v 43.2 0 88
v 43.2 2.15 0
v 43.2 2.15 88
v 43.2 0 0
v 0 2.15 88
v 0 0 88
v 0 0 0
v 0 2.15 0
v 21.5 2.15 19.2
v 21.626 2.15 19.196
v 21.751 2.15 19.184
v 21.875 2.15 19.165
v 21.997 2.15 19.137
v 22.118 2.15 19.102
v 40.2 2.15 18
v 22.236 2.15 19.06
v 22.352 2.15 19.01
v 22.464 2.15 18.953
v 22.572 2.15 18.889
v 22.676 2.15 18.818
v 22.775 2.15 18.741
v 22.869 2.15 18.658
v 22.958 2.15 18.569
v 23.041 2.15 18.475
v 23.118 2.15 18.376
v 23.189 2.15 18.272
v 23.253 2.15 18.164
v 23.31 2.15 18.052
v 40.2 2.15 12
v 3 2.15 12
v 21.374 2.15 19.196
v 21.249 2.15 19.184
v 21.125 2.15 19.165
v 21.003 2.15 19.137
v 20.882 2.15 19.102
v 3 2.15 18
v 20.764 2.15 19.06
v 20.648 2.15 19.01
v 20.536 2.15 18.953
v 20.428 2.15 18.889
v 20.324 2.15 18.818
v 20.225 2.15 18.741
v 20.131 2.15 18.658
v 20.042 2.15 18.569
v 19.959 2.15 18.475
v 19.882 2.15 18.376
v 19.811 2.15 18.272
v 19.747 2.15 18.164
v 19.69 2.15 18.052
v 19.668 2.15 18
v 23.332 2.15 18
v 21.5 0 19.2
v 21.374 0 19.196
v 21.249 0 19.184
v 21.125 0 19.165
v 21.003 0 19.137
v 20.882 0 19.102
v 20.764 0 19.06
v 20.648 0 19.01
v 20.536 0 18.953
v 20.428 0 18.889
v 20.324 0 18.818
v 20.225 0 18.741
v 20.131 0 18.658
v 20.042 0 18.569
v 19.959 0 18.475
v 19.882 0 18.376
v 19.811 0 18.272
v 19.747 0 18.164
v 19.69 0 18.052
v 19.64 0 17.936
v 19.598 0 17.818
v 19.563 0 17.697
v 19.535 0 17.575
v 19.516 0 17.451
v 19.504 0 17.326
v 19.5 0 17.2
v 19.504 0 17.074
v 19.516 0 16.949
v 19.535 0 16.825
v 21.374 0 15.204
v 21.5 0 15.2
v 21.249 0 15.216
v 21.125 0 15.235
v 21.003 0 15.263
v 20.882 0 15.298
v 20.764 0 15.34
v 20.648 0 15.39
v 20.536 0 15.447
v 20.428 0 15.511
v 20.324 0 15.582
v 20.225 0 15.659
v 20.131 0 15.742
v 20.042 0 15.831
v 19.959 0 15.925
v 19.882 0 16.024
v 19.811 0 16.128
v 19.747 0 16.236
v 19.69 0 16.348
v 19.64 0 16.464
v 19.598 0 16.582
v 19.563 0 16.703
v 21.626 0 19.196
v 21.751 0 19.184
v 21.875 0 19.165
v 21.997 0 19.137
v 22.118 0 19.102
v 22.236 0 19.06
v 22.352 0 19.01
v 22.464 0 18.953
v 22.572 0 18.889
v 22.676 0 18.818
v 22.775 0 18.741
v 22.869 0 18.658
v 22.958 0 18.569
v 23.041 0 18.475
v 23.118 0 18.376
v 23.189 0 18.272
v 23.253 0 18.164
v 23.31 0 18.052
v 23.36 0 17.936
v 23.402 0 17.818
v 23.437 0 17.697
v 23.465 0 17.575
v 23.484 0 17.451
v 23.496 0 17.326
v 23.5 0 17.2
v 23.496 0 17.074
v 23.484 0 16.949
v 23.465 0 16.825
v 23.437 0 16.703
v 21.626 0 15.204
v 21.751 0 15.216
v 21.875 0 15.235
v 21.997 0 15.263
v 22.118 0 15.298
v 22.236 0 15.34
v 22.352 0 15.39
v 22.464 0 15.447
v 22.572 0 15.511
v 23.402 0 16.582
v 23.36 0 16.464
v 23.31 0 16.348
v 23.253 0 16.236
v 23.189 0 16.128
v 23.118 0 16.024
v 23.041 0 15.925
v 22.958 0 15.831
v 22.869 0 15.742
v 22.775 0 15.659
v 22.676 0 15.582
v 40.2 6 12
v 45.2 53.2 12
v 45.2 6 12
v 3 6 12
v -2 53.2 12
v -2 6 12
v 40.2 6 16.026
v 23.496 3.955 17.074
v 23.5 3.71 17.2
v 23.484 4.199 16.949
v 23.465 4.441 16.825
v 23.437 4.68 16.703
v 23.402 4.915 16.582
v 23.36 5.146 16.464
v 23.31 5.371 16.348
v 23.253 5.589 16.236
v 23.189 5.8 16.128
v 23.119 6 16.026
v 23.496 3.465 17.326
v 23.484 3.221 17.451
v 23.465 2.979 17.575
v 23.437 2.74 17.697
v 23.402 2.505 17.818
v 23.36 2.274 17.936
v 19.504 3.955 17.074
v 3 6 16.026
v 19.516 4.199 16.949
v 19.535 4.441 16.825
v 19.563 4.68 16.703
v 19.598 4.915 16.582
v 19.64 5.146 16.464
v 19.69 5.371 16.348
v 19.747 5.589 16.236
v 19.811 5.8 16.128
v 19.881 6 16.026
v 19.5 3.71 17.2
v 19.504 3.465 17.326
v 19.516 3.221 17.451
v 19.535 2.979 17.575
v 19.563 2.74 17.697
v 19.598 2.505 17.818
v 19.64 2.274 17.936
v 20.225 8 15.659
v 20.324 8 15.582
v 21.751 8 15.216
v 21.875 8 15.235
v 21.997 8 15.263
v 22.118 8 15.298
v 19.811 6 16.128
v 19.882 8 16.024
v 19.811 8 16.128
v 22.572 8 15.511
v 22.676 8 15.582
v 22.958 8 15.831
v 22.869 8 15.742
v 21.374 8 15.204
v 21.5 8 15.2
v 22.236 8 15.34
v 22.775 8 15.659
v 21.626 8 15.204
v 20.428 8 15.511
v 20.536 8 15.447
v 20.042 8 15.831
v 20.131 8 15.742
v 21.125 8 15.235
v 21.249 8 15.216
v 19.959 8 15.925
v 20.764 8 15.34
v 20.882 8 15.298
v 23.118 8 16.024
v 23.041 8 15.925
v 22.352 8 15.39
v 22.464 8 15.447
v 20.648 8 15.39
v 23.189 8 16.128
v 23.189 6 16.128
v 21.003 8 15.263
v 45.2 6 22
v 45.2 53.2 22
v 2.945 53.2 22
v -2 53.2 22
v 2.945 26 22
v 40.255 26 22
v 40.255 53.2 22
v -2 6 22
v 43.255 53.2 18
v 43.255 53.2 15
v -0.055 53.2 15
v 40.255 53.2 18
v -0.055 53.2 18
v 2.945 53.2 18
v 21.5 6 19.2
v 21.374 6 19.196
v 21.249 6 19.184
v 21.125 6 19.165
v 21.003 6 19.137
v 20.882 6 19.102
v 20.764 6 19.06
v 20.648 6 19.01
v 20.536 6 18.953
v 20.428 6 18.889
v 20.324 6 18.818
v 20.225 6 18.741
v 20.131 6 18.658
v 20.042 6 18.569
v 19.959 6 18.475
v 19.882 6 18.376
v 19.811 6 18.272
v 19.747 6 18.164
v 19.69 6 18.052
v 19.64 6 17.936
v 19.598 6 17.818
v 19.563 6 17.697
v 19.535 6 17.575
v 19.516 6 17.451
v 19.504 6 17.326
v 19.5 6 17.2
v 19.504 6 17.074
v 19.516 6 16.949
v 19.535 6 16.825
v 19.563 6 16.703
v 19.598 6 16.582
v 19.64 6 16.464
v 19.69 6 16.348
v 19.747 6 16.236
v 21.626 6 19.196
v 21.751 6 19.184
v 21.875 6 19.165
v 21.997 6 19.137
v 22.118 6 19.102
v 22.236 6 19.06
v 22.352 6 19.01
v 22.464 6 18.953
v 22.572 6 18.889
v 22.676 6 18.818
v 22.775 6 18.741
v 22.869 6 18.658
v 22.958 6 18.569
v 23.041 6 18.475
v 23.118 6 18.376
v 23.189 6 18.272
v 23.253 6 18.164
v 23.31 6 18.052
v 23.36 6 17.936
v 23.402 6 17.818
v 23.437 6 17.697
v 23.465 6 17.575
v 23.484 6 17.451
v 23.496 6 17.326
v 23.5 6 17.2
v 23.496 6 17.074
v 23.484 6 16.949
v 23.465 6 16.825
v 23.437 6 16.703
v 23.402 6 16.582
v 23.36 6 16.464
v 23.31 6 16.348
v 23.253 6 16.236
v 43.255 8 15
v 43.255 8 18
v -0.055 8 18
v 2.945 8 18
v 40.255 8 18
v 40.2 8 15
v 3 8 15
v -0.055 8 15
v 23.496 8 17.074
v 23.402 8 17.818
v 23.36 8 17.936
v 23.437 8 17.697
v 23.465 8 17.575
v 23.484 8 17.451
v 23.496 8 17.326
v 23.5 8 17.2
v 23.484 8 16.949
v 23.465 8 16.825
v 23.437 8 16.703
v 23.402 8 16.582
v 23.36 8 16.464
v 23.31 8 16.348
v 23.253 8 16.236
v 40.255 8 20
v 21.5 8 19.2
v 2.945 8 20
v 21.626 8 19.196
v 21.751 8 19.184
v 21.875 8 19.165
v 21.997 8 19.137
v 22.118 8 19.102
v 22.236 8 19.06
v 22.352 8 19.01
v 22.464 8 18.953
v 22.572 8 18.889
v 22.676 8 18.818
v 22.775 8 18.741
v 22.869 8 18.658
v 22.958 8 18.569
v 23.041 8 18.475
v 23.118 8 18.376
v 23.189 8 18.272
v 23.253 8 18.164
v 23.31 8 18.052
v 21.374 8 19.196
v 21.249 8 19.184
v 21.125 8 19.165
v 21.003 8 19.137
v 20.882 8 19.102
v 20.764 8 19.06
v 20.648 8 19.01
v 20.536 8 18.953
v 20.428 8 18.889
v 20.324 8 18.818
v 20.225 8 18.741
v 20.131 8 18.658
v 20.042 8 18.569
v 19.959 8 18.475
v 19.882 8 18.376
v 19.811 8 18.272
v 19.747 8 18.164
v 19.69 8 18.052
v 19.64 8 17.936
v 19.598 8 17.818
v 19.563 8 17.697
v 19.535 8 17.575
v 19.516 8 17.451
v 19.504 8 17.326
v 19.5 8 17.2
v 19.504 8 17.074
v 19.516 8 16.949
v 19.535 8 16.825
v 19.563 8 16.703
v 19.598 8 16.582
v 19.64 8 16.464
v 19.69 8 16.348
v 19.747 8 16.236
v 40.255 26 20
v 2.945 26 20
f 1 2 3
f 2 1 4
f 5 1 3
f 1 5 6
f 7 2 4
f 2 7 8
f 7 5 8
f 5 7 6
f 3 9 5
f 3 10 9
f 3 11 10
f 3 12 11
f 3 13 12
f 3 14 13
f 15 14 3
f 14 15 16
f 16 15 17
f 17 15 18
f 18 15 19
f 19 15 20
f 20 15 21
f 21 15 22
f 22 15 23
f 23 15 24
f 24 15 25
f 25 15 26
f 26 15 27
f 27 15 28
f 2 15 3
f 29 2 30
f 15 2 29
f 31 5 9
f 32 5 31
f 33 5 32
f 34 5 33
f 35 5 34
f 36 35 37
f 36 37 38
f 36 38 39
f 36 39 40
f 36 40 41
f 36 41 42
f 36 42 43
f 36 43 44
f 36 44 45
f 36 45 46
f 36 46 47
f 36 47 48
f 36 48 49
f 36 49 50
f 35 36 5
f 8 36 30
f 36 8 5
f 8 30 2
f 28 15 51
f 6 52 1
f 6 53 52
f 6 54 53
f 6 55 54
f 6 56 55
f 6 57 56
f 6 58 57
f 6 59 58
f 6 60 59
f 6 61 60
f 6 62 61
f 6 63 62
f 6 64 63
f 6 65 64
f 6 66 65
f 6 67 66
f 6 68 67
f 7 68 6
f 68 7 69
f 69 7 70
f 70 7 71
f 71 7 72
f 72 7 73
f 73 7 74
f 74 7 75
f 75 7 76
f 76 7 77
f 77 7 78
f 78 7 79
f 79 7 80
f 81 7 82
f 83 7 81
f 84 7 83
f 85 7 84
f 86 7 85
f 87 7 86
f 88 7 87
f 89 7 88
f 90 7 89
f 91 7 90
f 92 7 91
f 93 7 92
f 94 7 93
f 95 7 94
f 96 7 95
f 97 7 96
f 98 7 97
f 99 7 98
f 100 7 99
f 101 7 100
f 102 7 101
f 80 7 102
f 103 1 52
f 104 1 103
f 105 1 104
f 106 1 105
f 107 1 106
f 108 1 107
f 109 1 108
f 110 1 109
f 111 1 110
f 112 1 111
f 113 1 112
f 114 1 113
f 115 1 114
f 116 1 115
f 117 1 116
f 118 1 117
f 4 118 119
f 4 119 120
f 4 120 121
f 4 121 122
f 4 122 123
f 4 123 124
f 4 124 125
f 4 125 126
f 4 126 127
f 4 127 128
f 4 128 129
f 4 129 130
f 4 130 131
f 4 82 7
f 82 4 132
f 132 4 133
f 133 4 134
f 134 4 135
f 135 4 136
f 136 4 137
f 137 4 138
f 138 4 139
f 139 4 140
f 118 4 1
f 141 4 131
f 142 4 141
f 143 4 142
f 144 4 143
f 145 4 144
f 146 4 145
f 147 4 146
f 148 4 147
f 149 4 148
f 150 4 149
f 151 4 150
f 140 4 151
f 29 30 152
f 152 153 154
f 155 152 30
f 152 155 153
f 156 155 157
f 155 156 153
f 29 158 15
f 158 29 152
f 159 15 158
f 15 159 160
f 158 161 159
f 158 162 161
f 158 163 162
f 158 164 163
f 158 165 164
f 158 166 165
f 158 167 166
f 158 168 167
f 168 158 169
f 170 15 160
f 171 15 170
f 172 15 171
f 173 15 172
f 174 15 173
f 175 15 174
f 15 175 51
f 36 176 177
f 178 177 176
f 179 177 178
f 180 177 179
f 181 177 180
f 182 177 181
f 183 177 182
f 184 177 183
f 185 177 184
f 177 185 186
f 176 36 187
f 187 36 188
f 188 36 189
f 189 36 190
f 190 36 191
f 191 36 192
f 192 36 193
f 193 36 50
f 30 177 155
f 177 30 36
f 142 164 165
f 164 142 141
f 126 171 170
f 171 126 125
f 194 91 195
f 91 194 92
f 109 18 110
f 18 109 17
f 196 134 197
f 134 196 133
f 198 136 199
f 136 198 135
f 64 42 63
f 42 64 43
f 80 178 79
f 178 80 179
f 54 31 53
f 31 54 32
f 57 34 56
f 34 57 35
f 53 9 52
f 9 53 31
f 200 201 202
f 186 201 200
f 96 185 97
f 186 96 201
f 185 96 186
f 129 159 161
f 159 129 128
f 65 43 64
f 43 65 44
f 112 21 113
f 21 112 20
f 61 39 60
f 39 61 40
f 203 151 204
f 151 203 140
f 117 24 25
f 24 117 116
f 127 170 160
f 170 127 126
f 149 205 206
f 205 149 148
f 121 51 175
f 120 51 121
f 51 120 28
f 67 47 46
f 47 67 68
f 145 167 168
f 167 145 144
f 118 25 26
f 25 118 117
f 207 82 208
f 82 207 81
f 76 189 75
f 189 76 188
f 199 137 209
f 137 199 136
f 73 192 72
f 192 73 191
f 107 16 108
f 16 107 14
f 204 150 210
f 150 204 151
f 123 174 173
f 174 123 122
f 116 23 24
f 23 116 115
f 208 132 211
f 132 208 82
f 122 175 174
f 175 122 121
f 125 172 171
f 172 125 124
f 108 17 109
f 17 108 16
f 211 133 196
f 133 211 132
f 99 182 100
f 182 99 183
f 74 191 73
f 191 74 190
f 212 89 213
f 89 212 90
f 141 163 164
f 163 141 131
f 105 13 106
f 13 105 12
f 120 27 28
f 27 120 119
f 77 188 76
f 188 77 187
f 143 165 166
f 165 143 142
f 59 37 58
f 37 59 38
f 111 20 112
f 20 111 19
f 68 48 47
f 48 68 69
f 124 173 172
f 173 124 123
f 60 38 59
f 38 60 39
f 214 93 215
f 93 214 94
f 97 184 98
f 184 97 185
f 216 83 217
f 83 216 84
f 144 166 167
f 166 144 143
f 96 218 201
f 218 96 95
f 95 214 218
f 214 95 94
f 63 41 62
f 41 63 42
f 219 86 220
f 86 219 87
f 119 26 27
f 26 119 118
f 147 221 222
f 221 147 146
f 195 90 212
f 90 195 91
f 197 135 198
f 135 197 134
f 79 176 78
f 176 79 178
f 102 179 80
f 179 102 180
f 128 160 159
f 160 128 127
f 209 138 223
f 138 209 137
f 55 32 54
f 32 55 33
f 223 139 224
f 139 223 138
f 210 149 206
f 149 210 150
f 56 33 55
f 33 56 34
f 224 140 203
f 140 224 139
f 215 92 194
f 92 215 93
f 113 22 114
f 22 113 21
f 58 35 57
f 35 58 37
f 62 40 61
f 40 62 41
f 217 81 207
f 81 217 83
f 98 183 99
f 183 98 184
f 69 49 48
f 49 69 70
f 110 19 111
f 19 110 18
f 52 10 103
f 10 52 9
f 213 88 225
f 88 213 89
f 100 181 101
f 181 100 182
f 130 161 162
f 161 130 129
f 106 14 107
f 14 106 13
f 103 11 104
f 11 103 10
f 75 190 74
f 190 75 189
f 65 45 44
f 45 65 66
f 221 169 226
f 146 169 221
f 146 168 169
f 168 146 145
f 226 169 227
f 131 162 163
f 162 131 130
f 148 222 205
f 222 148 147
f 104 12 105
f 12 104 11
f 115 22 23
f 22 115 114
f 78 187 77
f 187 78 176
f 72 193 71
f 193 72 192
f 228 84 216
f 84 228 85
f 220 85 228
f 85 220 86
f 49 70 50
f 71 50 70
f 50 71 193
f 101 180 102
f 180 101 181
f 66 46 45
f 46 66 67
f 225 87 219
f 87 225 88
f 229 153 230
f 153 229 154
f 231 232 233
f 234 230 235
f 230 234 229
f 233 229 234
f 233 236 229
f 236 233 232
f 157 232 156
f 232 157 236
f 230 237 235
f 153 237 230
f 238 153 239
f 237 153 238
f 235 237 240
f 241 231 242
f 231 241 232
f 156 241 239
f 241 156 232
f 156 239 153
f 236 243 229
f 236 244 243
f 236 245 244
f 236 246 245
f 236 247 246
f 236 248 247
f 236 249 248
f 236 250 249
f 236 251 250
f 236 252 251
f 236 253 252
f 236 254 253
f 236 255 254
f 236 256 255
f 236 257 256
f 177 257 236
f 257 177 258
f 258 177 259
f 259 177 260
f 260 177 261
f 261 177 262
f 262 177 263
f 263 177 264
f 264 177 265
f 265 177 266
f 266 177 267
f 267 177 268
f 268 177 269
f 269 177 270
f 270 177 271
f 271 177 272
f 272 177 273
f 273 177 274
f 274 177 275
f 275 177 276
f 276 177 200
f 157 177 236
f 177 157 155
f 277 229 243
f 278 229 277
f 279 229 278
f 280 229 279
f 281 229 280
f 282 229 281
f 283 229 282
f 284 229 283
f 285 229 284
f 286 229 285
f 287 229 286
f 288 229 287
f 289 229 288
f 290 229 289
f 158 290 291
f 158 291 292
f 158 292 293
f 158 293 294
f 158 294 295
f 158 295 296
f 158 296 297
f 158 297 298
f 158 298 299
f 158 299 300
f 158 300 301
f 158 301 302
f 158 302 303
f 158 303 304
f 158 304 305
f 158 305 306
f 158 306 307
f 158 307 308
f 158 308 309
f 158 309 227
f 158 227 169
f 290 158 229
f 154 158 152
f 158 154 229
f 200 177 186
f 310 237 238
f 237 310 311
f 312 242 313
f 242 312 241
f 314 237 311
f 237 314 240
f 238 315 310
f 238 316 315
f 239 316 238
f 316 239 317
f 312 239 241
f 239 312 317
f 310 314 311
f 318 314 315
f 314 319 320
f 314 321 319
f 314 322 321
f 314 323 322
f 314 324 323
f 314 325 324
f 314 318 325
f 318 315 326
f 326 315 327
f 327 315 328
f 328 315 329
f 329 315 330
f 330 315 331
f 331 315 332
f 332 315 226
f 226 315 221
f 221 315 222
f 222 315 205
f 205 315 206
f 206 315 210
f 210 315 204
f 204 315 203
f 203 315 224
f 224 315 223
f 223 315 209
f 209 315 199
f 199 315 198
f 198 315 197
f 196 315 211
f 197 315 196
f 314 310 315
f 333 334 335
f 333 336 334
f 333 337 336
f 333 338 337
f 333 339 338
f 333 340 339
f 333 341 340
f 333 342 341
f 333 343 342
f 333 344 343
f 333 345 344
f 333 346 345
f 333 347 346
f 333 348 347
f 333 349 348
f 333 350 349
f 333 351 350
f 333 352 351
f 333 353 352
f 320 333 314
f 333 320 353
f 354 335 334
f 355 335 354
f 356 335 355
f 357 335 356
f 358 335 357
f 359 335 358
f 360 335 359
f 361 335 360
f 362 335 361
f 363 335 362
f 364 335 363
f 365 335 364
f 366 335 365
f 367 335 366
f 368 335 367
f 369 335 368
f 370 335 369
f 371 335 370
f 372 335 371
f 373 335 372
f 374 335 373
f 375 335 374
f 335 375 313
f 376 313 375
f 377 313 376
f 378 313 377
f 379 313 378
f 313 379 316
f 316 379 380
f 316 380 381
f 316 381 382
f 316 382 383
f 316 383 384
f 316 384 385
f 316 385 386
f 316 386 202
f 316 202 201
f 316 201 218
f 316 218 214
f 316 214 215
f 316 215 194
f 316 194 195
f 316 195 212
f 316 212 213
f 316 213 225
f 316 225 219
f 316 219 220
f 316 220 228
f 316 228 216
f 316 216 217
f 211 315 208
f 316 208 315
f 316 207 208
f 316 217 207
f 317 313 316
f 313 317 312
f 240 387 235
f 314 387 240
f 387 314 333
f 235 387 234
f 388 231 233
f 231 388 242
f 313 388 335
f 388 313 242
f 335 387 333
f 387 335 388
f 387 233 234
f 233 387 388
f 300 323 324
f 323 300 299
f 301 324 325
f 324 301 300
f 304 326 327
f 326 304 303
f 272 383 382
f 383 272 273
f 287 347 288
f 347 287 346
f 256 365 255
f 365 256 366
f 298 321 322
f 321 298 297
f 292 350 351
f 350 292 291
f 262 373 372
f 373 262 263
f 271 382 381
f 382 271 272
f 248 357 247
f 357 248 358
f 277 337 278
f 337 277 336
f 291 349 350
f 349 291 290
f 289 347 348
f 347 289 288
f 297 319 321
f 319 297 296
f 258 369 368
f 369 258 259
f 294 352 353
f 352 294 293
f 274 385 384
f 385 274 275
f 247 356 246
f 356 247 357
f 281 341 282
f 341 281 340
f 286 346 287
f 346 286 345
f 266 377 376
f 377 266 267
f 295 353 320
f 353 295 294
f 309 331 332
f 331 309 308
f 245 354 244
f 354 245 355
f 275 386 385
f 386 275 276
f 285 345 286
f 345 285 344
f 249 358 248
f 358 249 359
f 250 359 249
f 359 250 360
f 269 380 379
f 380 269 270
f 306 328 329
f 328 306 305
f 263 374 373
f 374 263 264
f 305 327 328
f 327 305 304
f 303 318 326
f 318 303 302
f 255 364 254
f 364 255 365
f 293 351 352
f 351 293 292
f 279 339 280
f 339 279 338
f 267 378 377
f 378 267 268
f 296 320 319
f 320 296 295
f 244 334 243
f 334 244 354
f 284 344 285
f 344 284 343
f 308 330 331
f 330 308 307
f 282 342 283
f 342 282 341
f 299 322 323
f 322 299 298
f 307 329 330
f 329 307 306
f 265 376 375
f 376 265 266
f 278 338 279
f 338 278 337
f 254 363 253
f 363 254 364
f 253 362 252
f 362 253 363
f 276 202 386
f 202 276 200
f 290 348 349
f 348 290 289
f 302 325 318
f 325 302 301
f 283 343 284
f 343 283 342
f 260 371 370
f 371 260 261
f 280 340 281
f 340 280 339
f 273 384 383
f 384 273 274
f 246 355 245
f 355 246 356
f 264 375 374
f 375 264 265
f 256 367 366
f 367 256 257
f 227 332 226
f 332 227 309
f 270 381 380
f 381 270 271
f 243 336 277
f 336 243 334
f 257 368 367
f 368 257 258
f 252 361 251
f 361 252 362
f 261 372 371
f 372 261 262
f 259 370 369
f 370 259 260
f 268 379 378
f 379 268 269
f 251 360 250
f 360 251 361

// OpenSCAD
module sensor_slot (x,y,z, tol) {
// variables

ancho_placa = 43.31;  // this controls how tight is the fit
grosor_placa = 3;   
grosor_soporte = 3;
grosor_extra = 4;  


//// plataforma que va a sujetar el panel de acero
translate([0,5,12]) 
    difference() {
        translate([-grosor_extra/2,1,0])
        cube([x+grosor_extra,x+4,10]);
        translate([(x - ancho_placa)/2,3,3]) 
        cube([ancho_placa,x+4,grosor_placa]); // substraccion 1
        translate([(x - (ancho_placa-grosor_soporte*2))/2,3,3])
        cube([ancho_placa-grosor_soporte*2,x+tol+4,10]); // substraccion 1     
    }
   // this is the cover
   translate([0, 6, 20])
   color("red") cube([x, 20, 2]); 
}

module wall_mount(x,y,z){


cube([x,y,z]);
reinforcement(x,y);

}

module reinforcement(x,y){
    hull() {
    translate([3,0,15]) color("red") cube([x-6,y,3]); // crea soporte usando funcion hull()
    translate([3,0,12]) cube([x-6,8,3]); 
    }
}


module cable_hole(length, width){
        ancho_placa = 43;  
           rotate([90, 0, 0]){
            translate([ancho_placa/2, ancho_placa/2.5, -10])
            color("red") cylinder(length, width, width, $fn = 100);
        }     
}

module cut(){
translate([-10,-10,0])
cube([60,40,40]);
}

    
tol = 0.5;
w = 2.5; // thickness of wall

difference(){
    wall_mount(43.2, 2.15,88);
    cable_hole(100, 2);
}
difference(){

sensor_slot(43.2, 2.15,88, tol);
cable_hole(100, 2);
    
}
